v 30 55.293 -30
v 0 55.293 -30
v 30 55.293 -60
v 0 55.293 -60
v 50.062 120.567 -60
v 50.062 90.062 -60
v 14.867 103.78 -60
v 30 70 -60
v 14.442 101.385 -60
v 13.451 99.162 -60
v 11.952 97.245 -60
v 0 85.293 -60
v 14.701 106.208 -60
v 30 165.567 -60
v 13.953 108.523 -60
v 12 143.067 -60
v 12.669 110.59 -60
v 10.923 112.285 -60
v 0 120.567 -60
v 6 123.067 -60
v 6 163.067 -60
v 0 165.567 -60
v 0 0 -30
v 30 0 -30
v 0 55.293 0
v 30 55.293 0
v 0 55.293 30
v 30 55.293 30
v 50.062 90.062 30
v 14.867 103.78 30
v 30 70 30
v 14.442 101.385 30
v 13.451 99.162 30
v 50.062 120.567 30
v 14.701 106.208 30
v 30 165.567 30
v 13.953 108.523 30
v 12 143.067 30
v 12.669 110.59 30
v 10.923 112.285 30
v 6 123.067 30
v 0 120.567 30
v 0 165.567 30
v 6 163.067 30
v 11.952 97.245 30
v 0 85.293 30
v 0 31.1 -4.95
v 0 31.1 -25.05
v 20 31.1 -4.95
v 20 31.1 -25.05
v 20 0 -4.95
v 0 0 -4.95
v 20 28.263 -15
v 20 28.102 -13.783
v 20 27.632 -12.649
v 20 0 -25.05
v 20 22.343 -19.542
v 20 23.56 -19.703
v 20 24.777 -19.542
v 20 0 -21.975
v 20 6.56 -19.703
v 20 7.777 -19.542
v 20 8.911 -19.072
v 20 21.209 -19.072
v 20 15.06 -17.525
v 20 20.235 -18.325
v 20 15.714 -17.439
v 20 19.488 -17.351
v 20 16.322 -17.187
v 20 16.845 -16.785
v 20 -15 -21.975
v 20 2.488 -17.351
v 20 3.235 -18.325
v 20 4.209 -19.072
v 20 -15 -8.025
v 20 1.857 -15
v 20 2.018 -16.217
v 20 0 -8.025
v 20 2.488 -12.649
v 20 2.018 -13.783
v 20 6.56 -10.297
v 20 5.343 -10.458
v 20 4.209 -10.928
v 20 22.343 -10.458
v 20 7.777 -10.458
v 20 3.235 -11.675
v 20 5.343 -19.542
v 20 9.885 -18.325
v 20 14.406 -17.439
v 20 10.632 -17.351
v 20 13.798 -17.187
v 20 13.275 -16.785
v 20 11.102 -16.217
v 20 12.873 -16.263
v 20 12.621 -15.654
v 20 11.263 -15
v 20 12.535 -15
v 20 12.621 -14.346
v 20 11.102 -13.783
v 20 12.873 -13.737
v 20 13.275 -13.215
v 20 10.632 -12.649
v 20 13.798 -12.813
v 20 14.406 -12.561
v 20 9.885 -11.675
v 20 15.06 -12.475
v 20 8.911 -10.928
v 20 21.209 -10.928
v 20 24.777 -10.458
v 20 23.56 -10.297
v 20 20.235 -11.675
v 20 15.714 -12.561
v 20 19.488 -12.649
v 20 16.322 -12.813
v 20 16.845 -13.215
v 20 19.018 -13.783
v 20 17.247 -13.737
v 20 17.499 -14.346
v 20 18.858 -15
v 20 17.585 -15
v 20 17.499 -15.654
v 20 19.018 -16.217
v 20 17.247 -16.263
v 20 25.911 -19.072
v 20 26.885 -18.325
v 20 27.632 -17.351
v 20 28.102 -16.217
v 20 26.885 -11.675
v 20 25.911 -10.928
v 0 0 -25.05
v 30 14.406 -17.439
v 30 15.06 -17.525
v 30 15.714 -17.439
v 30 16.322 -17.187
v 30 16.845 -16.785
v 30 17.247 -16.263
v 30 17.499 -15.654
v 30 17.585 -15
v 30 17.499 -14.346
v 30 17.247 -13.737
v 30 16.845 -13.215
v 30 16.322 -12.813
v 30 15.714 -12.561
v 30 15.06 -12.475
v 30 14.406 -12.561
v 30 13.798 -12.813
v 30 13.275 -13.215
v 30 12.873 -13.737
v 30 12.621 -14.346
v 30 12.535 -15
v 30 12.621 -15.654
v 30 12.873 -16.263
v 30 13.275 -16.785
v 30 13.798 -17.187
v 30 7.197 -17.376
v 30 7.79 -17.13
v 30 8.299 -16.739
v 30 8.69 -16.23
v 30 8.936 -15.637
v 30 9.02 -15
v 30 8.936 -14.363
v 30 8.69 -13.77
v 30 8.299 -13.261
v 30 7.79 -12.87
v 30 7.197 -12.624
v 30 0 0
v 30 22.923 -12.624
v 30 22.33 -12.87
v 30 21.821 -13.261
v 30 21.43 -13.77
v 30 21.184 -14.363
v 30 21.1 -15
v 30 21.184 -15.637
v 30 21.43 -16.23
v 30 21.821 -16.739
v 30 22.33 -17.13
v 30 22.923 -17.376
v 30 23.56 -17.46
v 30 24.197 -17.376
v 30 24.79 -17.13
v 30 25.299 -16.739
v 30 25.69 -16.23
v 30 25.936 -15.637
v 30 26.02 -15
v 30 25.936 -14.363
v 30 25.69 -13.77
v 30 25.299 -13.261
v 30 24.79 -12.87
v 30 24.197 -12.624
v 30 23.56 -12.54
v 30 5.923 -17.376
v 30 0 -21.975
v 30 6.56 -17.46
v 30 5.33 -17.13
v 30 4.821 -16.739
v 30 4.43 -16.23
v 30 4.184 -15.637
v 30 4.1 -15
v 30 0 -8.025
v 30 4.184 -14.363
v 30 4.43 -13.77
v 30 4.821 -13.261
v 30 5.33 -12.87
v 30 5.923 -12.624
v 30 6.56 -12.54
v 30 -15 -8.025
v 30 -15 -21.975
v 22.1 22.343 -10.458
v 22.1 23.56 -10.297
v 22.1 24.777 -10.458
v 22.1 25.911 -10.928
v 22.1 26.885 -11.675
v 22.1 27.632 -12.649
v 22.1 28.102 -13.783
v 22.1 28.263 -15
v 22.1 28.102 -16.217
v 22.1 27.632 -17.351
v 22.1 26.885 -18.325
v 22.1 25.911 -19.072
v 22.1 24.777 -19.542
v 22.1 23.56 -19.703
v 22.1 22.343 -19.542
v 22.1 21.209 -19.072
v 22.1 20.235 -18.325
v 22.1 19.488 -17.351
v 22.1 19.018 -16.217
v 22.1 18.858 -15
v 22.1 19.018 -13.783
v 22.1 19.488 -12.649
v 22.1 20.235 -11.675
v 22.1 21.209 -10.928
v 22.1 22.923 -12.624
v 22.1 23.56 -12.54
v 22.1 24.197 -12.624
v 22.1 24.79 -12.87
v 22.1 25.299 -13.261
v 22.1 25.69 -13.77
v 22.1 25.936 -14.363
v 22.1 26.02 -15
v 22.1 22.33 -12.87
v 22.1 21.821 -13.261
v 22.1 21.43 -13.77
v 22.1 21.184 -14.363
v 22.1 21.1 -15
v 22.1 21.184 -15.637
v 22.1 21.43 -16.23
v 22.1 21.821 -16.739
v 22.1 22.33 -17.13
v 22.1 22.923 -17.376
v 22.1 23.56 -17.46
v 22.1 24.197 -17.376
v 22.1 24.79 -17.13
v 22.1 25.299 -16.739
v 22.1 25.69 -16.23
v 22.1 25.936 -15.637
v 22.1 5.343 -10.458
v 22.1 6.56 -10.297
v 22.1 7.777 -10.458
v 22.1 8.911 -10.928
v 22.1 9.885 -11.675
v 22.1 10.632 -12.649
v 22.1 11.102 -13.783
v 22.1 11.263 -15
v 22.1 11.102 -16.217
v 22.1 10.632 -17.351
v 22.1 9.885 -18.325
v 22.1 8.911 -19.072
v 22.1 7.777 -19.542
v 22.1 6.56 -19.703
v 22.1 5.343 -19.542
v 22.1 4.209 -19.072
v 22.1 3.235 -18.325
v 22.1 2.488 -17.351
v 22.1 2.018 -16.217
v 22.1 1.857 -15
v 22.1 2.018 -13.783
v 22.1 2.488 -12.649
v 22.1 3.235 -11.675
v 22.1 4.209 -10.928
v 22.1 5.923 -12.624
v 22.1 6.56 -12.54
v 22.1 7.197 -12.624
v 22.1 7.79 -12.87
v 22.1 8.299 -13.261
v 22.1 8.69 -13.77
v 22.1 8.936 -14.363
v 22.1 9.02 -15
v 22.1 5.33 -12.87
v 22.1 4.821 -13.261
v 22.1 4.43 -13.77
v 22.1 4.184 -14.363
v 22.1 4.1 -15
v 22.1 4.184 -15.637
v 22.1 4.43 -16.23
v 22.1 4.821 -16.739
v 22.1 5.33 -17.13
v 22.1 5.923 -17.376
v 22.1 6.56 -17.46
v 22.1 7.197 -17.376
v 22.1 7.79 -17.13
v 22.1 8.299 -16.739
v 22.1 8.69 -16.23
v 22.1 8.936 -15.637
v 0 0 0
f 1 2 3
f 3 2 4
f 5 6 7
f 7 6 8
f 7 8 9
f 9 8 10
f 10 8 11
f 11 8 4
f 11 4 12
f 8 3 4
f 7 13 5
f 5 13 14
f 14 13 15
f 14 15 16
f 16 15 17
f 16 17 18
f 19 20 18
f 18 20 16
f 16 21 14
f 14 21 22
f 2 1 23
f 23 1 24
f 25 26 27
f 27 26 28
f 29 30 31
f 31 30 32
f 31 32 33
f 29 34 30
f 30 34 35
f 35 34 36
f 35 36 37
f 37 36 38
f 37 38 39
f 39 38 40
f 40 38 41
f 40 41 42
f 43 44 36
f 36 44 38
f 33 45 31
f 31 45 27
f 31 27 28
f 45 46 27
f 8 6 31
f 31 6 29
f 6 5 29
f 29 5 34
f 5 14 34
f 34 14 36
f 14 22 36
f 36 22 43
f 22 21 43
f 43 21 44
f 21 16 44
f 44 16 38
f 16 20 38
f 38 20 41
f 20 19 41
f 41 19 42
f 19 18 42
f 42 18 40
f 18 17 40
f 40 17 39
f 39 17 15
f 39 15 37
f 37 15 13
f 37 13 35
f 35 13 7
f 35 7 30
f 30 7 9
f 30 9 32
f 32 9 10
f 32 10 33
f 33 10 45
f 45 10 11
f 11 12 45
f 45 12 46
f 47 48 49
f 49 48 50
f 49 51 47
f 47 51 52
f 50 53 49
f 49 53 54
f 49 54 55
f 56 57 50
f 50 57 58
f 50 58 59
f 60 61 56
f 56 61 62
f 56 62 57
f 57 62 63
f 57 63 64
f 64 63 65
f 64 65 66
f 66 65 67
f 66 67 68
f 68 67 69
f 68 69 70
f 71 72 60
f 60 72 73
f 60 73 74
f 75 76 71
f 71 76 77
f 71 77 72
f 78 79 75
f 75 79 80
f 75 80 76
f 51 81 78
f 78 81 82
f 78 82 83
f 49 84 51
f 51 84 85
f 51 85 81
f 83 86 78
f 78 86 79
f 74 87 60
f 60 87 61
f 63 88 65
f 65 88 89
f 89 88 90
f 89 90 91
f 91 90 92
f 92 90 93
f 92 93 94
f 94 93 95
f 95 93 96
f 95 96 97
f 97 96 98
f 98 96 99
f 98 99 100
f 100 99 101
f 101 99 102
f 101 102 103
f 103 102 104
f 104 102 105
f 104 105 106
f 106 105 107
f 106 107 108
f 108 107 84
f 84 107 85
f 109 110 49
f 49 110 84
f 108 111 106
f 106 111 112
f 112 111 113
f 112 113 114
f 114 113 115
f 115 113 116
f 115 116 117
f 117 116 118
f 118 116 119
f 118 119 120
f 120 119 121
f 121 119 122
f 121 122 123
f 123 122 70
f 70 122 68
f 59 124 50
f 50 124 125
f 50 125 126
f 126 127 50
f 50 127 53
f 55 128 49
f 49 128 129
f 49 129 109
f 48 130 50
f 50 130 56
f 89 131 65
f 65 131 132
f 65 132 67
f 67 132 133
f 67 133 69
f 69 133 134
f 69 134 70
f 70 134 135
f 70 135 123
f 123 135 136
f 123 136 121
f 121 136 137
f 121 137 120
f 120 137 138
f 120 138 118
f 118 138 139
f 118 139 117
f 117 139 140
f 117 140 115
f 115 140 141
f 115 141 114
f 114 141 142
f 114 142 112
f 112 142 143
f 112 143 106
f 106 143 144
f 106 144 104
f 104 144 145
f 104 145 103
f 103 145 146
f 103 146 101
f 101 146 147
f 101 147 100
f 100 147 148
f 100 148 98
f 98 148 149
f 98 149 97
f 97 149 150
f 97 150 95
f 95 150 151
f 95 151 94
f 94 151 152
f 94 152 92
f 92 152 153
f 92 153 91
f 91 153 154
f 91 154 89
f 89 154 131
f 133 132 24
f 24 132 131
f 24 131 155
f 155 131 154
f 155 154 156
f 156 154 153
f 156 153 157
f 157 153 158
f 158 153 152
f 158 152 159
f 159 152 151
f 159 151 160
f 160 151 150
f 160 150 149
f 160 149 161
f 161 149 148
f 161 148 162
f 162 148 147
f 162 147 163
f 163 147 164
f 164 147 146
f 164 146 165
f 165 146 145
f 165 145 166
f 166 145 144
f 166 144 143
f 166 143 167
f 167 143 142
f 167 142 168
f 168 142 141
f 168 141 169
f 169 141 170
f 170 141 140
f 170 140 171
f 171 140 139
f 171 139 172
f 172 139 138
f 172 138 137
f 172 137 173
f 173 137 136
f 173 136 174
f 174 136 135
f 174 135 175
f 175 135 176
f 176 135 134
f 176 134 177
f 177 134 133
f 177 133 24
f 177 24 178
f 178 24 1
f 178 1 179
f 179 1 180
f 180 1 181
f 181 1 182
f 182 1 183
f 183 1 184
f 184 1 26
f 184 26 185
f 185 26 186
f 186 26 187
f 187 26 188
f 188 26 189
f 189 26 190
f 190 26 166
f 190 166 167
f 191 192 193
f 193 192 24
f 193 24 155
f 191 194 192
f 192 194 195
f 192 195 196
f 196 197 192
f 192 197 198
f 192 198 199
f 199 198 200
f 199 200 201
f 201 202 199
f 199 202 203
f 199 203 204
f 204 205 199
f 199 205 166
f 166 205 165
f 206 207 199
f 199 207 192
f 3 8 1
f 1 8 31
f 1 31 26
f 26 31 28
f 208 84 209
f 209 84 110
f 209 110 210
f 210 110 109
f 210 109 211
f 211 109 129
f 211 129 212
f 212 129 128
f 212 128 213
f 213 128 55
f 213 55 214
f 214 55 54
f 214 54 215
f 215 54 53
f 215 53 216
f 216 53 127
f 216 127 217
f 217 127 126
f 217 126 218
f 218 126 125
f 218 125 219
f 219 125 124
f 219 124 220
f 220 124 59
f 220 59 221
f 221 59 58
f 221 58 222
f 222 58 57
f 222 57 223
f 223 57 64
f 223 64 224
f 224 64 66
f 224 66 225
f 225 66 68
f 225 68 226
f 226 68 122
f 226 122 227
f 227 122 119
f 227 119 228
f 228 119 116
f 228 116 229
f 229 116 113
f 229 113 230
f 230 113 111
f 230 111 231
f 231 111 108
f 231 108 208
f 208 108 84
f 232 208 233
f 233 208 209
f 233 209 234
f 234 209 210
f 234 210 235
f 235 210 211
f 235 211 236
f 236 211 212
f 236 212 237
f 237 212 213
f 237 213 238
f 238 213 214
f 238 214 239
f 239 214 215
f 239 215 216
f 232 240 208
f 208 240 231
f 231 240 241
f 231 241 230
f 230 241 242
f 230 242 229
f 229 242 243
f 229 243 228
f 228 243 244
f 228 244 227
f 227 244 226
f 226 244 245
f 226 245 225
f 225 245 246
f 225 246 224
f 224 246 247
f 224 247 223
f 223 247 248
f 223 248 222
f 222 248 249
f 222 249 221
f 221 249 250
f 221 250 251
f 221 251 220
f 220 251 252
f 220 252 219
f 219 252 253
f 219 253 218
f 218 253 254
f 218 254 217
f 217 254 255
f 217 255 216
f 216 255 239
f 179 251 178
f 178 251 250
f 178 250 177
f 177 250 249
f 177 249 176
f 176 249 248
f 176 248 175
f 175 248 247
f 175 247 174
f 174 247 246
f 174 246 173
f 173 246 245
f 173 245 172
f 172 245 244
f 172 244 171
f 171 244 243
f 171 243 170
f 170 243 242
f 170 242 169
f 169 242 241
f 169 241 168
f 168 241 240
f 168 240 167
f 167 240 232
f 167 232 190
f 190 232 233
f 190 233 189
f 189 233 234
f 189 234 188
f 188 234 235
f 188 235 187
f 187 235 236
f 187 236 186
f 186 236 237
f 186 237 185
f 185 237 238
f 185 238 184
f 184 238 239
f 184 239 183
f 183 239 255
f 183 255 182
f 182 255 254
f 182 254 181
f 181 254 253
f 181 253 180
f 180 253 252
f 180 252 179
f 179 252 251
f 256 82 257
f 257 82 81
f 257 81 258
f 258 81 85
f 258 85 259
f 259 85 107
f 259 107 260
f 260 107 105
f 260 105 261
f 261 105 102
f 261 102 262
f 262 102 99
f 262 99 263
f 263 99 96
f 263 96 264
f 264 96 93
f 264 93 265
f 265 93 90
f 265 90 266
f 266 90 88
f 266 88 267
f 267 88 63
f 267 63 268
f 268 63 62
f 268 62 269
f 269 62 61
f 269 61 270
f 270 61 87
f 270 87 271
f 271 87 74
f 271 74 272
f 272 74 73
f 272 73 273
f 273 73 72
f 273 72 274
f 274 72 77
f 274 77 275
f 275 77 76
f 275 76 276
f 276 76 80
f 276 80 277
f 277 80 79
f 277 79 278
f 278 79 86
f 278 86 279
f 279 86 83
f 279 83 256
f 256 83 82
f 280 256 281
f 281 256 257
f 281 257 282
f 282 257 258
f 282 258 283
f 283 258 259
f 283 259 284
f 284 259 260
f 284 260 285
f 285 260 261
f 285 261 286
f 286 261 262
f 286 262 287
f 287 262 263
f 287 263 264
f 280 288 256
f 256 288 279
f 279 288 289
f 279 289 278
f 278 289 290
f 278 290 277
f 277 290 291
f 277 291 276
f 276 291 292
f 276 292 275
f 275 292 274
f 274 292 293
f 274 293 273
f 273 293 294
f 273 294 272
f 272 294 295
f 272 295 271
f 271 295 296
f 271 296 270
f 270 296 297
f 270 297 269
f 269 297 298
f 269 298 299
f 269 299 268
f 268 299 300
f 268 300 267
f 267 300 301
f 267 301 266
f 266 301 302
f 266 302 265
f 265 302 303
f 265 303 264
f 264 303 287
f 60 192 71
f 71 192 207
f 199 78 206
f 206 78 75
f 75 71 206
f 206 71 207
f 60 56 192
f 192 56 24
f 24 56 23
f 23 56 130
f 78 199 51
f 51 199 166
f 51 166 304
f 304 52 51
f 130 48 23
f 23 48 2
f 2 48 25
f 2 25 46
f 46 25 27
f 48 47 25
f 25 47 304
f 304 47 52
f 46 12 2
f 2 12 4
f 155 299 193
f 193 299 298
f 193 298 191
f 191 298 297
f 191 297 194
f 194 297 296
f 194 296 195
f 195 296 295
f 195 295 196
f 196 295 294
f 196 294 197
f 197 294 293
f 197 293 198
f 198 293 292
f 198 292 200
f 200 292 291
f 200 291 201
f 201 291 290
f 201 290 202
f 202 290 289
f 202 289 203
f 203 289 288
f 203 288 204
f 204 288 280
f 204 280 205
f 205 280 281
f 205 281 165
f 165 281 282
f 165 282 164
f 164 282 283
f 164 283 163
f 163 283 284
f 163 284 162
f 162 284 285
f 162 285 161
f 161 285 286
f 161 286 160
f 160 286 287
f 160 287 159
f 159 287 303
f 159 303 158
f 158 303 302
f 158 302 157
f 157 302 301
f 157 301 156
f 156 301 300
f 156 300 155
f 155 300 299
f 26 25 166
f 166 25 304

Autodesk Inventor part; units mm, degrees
ref_plane "YZ Plane" through (0, 0, 0) normal (1, 0, 0) x (0, 1, 0)
ref_plane "XZ Plane" through (0, 0, 0) normal (0, 1, 0) x (-1, 0, 0)
sketch "Sketch1" plane through (0, 0, 0) normal (0, 0, 1) x (1, 0, 0)
  line L0 (0, 0) -> (25, 0)
  line L1 (25, 0) -> (25, 40)
  line L2 (25, 40) -> (0, 40)
  line L3 (0, 40) -> (0, 0)
  dimension "d1" = 25
  dimension "d2" = 40
  dimension "d3" = 25
extrude "Extrusion1" add sketch "Sketch1" against normal blind 30
sketch "Sketch2" plane through (25, 0, 0) normal (1, 0, 0) x (0, 0, -1)
  line L0 (0, 0) -> (30, 0) projected
  circle A0 centre (15, 6.56) radius 2.46
extrude "Extrusion2" cut sketch "Sketch2" against normal blind 30
sketch "Sketch3" plane through (0, 0, 0) normal (-1, 0, 0) x (0, 0, 1)
  line L0 (0, 0) -> (-30, 0) projected
  line L1 (-25.05, 0) -> (-4.95, 0)
  line L2 (-4.95, 0) -> (-4.95, 33.12)
  line L3 (-4.95, 33.12) -> (-25.05, 33.12)
  line L4 (-25.05, 33.12) -> (-25.05, 0)
  dimension "d11" = 20.1
extrude "Extrusion3" cut sketch "Sketch3" against normal blind 20
sketch "Sketch4" plane through (0, 0, 0) normal (0, -1, 0) x (1, 0, 0)
  line L0 (20, -4.95) -> (20, -25.05) projected
  line L1 (20, -15) -> (25, -15)
  line L2 (25, 0) -> (25, -30) projected
  line L3 (20, -8.025) -> (25, -8.025)
  line L4 (25, -8.025) -> (25, -21.975)
  line L5 (25, -21.975) -> (20, -21.975)
  line L6 (20, -21.975) -> (20, -8.025)
  line L7 (20, -8.025) -> (25, -21.975) construction
  line L8 (25, -8.025) -> (20, -21.975) construction
  line L9 (25, -12.54) -> (25, -17.46) projected
  point P0 (0, 0)
  point P1 (22.5, -15)
  dimension "d14" = 13.95
extrude "Extrusion4" add sketch "Sketch4" along normal blind 15
sketch "Sketch5" plane through (20, 0, 0) normal (-1, 0, 0) x (0, 0, 1)
  circle A0 centre (-15, 6.56) radius 2.46 projected
  circle A1 centre (-15, 6.56) radius 4.7025
  circle A2 centre (-15, 6.56) radius 2.46 projected
  circle A3 centre (-15, 6.56) radius 2.46
  point P0 (0, 0)
  dimension "d17" = 9.405
extrude "Extrusion5" cut sketch "Sketch5" against normal blind 2.1
sketch "Sketch6" plane through (25, 0, 0) normal (1, 0, 0) x (0, 0, -1)
  circle A0 centre (15, 6.56) radius 4.7025 projected
  line L0 (15, 6.56) -> (15, 23.56)
  circle A1 centre (15, 23.56) radius 2.46
  point P0 (0, 0)
  dimension "d20" = 17
  dimension "d21" = 4.92
extrude "Extrusion6" cut sketch "Sketch6" against normal blind 10 contours A1
sketch "Sketch7" plane through (20, 0, 0) normal (-1, 0, 0) x (0, 0, 1)
  circle A0 centre (-15, 23.56) radius 2.46 projected
  circle A1 centre (-15, 23.56) radius 4.7025
  point P0 (0, 0)
  dimension "d24" = 9.405
extrude "Extrusion7" cut sketch "Sketch7" against normal blind 2.1
sketch "Sketch9" plane through (25, 0, 0) normal (1, 0, 0) x (0, 0, -1)
  circle A0 centre (15, 6.56) radius 2.46 projected
  circle A1 centre (15, 6.56) radius 2.46
  circle A2 centre (15, 23.56) radius 2.46 projected
  circle A3 centre (15, 23.56) radius 2.46
  line L0 (30, 40) -> (30, 0) projected
  line L1 (30, 0) -> (30, 40)
  line L2 (30, 40) -> (0, 40)
  line L3 (0, 40) -> (0, 0)
  line L4 (0, 0) -> (8.025, 0) projected
  line L5 (21.975, 0) -> (21.975, -15)
  line L6 (21.975, -15) -> (8.025, -15)
  line L7 (8.025, -15) -> (8.025, 0)
  line L8 (0, 0) -> (8.025, 0)
  line L9 (21.975, 0) -> (30, 0)
extrude "Extrusion8" add sketch "Sketch9" along normal blind 5
sketch "Sketch10" plane through (0, 40, 0) normal (0, 1, 0) x (1, 0, 0)
  line L0 (0, 30) -> (30, 30) projected
  line L1 (30, 0) -> (0, 0) projected
  line L2 (0, 30) -> (30, 30)
  line L3 (30, 30) -> (30, 0)
  line L4 (30, 0) -> (0, 0)
  line L5 (0, 0) -> (0, 30)
extrude "Extrusion9" add sketch "Sketch10" along normal blind 30
sketch "Sketch12" plane through (30, 0, 0) normal (1, 0, 0) x (0, 0, -1)
  circle A0 centre (15, 6.56) radius 2.46 projected
  line L0 (15, 6.56) -> (15, 15.06)
  circle A1 centre (15, 15.06) radius 2.525
  point P0 (0, 0)
  dimension "d31" = 8.5
  dimension "d33" = 5.05
extrude "Extrusion10" cut sketch "Sketch12" against normal blind 30 contours A1
sketch "Sketch15" plane through (0, 0, -25.05) normal (-1, 0, 0) x (0, 0, 1)
  line L0 (0, 33.12) -> (20.1, 33.12) projected
  line L1 (20.1, 33.12) -> (20.1, 0) projected
  line L2 (0, 33.12) -> (20.1, 33.12)
  line L3 (20.1, 33.12) -> (20.1, 31.1)
  line L4 (20.1, 31.1) -> (0, 31.1)
  line L5 (0, 31.1) -> (0, 33.12)
  point P0 (25.05, 0)
  dimension "d57" = 2.02
extrude "Extrusion13" add sketch "Sketch15" against normal blind 20
sketch "Sketch17" plane through (0, 0, 0) normal (0, 0, 1) x (1, 0, 0)
  line L0 (0, 70) -> (30, 70) projected
  line L1 (30, 70) -> (50.0622, 90.0622)
  line L2 (30, 70) -> (80, 70) construction
  line L3 (11.9522, 97.2454) -> (0, 85.2932)
  line L4 (0, 70) -> (0, 85.2932)
  line L5 (0, 70) -> (0, 0) projected
  line L6 (0, 70) -> (30, 70)
  line L7 (10.923, 112.2849) -> (0, 120.567)
  line L8 (50.0622, 105.3553) -> (50.0622, 120.567)
  line L9 (50.0622, 105.3553) -> (50.0622, 90.0622)
  arc A0 (11.9522, 97.2454) -> (10.923, 112.2849) centre (4.8811, 104.3165) ccw
  line L10 (0, 165.567) -> (30, 165.567)
  line L11 (30, 165.567) -> (50.0622, 120.567)
  line L12 (6, 163.067) -> (0, 165.567)
  line L13 (6, 123.067) -> (0, 120.567)
  line L14 (6, 123.067) -> (12, 143.067)
  line L15 (12, 143.067) -> (6, 163.067)
  dimension "d61" = 45
  dimension "d62" = 32.0271
  dimension "d72" = 10
extrude "Extrusion14" add sketch "Sketch17" against normal blind 30
sketch "Sketch24" plane through (0, 0, 0) normal (0, 0, 1) x (1, 0, 0)
  line L0 (30, 70) -> (50.0622, 90.0622) projected
  line L1 (30, 70) -> (50.0622, 90.0622)
  line L2 (50.0622, 90.0622) -> (50.0622, 120.567) projected
  line L3 (50.0622, 90.0622) -> (50.0622, 120.567)
  line L4 (30, 165.567) -> (50.0622, 120.567) projected
  line L5 (50.0622, 120.567) -> (30, 165.567)
  line L6 (0, 165.567) -> (30, 165.567) projected
  line L7 (30, 165.567) -> (0, 165.567)
  line L8 (6, 163.067) -> (0, 165.567) projected
  line L9 (0, 165.567) -> (6, 163.067)
  line L10 (12, 143.067) -> (6, 163.067) projected
  line L11 (6, 163.067) -> (12, 143.067)
  line L12 (6, 123.067) -> (12, 143.067) projected
  line L13 (12, 143.067) -> (6, 123.067)
  line L14 (0, 120.567) -> (6, 123.067) projected
  line L15 (6, 123.067) -> (0, 120.567)
  line L16 (10.923, 112.2849) -> (0, 120.567) projected
  line L17 (0, 120.567) -> (10.923, 112.2849)
  line L18 (0, 85.2932) -> (11.9522, 97.2454) projected
  line L19 (11.9522, 97.2454) -> (0, 85.2932)
  line L20 (0, 85.2932) -> (0, 55.2932)
  line L21 (0, 0) -> (0, 85.2932) projected
  line L22 (0, 55.2932) -> (30, 55.2932)
  line L23 (30, 0) -> (30, 70) projected
  line L24 (30, 55.2932) -> (30, 70)
  arc A0 (11.9522, 97.2454) -> (10.923, 112.2849) centre (4.8811, 104.3165) ccw projected
  arc A1 (11.9522, 97.2454) -> (10.923, 112.2849) centre (4.8811, 104.3165) ccw
  dimension "d102" = 30
extrude "Extrusion15" add sketch "Sketch24" along normal blind 30
ref_plane "Work Plane1" through (0, 0, -15) normal (0, 0, 1) x (1, 0, 0)
mirror "Mirror1" about plane through (0, 0, -15) normal (0, 0, 1) of "Extrusion15"
properties part number "rec_c_40mm_x_90mm"
